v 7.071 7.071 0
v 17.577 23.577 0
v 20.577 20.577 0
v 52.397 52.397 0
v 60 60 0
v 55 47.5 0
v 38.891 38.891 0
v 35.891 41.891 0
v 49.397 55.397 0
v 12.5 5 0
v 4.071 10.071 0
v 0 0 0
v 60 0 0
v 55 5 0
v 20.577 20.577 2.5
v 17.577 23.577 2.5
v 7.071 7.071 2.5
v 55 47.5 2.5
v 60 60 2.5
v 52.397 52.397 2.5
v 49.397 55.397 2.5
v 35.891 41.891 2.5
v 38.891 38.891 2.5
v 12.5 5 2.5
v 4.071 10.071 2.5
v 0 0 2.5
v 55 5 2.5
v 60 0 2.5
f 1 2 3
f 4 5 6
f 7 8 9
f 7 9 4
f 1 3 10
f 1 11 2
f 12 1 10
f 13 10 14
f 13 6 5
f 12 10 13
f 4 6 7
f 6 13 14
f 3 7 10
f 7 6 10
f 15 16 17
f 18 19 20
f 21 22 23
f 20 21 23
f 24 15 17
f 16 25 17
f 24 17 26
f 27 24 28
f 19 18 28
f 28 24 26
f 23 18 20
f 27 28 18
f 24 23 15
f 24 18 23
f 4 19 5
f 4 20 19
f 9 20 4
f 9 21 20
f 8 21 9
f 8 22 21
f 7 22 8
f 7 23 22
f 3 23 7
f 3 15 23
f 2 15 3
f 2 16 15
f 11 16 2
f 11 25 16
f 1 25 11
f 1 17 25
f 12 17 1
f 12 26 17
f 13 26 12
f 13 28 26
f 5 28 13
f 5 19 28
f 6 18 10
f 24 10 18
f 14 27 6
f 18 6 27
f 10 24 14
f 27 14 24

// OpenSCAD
// file: Base.scad
$fn=100;
thickness = 3;

module soldering_hole(hole_diameter, open=false) {
    difference() {
        square([35,30]);
        translate([15,15]) hull() {
            circle(d=hole_diameter);
            if(open) {
                translate([0, 20]) circle(d=hole_diameter);
            }
        }
    }
}

module distance_ring(height) {
    linear_extrude(height) {
        difference() {
            holes(6);
            holes(4);
        }
    }
}

module holes(diameter=4) {
    hole_row(diameter);
    translate([0, 72]) hole_row(diameter);
}

module hole_row(diameter=4) {
    circle(d=diameter);
    translate([66,0]) circle(d=diameter);
}

module base_plate(hole_diameter, open) {
    difference() {
        square([80, 85]);
        translate([5,6]) holes();
    }
    translate([80, 55]) soldering_hole(hole_diameter, open);
}
// main file
include <Base.scad>

module Stand() {
     linear_extrude(2.5) {
          difference() {
               polygon([[0,0], [60,0], [60,60]]);
               polygon([[12.5,5], [55,5], [55,47.5]]);
          }
          //rotate([0,0,45]) square([20,3]);
          translate([-3,3,0]) {
               rotate([0,0, 315]) {
                    translate([0, 10]) square([5,19.1]);
                    translate([0, 55]) square([5,19.1]);
               }
          }
     }
}

Stand();
